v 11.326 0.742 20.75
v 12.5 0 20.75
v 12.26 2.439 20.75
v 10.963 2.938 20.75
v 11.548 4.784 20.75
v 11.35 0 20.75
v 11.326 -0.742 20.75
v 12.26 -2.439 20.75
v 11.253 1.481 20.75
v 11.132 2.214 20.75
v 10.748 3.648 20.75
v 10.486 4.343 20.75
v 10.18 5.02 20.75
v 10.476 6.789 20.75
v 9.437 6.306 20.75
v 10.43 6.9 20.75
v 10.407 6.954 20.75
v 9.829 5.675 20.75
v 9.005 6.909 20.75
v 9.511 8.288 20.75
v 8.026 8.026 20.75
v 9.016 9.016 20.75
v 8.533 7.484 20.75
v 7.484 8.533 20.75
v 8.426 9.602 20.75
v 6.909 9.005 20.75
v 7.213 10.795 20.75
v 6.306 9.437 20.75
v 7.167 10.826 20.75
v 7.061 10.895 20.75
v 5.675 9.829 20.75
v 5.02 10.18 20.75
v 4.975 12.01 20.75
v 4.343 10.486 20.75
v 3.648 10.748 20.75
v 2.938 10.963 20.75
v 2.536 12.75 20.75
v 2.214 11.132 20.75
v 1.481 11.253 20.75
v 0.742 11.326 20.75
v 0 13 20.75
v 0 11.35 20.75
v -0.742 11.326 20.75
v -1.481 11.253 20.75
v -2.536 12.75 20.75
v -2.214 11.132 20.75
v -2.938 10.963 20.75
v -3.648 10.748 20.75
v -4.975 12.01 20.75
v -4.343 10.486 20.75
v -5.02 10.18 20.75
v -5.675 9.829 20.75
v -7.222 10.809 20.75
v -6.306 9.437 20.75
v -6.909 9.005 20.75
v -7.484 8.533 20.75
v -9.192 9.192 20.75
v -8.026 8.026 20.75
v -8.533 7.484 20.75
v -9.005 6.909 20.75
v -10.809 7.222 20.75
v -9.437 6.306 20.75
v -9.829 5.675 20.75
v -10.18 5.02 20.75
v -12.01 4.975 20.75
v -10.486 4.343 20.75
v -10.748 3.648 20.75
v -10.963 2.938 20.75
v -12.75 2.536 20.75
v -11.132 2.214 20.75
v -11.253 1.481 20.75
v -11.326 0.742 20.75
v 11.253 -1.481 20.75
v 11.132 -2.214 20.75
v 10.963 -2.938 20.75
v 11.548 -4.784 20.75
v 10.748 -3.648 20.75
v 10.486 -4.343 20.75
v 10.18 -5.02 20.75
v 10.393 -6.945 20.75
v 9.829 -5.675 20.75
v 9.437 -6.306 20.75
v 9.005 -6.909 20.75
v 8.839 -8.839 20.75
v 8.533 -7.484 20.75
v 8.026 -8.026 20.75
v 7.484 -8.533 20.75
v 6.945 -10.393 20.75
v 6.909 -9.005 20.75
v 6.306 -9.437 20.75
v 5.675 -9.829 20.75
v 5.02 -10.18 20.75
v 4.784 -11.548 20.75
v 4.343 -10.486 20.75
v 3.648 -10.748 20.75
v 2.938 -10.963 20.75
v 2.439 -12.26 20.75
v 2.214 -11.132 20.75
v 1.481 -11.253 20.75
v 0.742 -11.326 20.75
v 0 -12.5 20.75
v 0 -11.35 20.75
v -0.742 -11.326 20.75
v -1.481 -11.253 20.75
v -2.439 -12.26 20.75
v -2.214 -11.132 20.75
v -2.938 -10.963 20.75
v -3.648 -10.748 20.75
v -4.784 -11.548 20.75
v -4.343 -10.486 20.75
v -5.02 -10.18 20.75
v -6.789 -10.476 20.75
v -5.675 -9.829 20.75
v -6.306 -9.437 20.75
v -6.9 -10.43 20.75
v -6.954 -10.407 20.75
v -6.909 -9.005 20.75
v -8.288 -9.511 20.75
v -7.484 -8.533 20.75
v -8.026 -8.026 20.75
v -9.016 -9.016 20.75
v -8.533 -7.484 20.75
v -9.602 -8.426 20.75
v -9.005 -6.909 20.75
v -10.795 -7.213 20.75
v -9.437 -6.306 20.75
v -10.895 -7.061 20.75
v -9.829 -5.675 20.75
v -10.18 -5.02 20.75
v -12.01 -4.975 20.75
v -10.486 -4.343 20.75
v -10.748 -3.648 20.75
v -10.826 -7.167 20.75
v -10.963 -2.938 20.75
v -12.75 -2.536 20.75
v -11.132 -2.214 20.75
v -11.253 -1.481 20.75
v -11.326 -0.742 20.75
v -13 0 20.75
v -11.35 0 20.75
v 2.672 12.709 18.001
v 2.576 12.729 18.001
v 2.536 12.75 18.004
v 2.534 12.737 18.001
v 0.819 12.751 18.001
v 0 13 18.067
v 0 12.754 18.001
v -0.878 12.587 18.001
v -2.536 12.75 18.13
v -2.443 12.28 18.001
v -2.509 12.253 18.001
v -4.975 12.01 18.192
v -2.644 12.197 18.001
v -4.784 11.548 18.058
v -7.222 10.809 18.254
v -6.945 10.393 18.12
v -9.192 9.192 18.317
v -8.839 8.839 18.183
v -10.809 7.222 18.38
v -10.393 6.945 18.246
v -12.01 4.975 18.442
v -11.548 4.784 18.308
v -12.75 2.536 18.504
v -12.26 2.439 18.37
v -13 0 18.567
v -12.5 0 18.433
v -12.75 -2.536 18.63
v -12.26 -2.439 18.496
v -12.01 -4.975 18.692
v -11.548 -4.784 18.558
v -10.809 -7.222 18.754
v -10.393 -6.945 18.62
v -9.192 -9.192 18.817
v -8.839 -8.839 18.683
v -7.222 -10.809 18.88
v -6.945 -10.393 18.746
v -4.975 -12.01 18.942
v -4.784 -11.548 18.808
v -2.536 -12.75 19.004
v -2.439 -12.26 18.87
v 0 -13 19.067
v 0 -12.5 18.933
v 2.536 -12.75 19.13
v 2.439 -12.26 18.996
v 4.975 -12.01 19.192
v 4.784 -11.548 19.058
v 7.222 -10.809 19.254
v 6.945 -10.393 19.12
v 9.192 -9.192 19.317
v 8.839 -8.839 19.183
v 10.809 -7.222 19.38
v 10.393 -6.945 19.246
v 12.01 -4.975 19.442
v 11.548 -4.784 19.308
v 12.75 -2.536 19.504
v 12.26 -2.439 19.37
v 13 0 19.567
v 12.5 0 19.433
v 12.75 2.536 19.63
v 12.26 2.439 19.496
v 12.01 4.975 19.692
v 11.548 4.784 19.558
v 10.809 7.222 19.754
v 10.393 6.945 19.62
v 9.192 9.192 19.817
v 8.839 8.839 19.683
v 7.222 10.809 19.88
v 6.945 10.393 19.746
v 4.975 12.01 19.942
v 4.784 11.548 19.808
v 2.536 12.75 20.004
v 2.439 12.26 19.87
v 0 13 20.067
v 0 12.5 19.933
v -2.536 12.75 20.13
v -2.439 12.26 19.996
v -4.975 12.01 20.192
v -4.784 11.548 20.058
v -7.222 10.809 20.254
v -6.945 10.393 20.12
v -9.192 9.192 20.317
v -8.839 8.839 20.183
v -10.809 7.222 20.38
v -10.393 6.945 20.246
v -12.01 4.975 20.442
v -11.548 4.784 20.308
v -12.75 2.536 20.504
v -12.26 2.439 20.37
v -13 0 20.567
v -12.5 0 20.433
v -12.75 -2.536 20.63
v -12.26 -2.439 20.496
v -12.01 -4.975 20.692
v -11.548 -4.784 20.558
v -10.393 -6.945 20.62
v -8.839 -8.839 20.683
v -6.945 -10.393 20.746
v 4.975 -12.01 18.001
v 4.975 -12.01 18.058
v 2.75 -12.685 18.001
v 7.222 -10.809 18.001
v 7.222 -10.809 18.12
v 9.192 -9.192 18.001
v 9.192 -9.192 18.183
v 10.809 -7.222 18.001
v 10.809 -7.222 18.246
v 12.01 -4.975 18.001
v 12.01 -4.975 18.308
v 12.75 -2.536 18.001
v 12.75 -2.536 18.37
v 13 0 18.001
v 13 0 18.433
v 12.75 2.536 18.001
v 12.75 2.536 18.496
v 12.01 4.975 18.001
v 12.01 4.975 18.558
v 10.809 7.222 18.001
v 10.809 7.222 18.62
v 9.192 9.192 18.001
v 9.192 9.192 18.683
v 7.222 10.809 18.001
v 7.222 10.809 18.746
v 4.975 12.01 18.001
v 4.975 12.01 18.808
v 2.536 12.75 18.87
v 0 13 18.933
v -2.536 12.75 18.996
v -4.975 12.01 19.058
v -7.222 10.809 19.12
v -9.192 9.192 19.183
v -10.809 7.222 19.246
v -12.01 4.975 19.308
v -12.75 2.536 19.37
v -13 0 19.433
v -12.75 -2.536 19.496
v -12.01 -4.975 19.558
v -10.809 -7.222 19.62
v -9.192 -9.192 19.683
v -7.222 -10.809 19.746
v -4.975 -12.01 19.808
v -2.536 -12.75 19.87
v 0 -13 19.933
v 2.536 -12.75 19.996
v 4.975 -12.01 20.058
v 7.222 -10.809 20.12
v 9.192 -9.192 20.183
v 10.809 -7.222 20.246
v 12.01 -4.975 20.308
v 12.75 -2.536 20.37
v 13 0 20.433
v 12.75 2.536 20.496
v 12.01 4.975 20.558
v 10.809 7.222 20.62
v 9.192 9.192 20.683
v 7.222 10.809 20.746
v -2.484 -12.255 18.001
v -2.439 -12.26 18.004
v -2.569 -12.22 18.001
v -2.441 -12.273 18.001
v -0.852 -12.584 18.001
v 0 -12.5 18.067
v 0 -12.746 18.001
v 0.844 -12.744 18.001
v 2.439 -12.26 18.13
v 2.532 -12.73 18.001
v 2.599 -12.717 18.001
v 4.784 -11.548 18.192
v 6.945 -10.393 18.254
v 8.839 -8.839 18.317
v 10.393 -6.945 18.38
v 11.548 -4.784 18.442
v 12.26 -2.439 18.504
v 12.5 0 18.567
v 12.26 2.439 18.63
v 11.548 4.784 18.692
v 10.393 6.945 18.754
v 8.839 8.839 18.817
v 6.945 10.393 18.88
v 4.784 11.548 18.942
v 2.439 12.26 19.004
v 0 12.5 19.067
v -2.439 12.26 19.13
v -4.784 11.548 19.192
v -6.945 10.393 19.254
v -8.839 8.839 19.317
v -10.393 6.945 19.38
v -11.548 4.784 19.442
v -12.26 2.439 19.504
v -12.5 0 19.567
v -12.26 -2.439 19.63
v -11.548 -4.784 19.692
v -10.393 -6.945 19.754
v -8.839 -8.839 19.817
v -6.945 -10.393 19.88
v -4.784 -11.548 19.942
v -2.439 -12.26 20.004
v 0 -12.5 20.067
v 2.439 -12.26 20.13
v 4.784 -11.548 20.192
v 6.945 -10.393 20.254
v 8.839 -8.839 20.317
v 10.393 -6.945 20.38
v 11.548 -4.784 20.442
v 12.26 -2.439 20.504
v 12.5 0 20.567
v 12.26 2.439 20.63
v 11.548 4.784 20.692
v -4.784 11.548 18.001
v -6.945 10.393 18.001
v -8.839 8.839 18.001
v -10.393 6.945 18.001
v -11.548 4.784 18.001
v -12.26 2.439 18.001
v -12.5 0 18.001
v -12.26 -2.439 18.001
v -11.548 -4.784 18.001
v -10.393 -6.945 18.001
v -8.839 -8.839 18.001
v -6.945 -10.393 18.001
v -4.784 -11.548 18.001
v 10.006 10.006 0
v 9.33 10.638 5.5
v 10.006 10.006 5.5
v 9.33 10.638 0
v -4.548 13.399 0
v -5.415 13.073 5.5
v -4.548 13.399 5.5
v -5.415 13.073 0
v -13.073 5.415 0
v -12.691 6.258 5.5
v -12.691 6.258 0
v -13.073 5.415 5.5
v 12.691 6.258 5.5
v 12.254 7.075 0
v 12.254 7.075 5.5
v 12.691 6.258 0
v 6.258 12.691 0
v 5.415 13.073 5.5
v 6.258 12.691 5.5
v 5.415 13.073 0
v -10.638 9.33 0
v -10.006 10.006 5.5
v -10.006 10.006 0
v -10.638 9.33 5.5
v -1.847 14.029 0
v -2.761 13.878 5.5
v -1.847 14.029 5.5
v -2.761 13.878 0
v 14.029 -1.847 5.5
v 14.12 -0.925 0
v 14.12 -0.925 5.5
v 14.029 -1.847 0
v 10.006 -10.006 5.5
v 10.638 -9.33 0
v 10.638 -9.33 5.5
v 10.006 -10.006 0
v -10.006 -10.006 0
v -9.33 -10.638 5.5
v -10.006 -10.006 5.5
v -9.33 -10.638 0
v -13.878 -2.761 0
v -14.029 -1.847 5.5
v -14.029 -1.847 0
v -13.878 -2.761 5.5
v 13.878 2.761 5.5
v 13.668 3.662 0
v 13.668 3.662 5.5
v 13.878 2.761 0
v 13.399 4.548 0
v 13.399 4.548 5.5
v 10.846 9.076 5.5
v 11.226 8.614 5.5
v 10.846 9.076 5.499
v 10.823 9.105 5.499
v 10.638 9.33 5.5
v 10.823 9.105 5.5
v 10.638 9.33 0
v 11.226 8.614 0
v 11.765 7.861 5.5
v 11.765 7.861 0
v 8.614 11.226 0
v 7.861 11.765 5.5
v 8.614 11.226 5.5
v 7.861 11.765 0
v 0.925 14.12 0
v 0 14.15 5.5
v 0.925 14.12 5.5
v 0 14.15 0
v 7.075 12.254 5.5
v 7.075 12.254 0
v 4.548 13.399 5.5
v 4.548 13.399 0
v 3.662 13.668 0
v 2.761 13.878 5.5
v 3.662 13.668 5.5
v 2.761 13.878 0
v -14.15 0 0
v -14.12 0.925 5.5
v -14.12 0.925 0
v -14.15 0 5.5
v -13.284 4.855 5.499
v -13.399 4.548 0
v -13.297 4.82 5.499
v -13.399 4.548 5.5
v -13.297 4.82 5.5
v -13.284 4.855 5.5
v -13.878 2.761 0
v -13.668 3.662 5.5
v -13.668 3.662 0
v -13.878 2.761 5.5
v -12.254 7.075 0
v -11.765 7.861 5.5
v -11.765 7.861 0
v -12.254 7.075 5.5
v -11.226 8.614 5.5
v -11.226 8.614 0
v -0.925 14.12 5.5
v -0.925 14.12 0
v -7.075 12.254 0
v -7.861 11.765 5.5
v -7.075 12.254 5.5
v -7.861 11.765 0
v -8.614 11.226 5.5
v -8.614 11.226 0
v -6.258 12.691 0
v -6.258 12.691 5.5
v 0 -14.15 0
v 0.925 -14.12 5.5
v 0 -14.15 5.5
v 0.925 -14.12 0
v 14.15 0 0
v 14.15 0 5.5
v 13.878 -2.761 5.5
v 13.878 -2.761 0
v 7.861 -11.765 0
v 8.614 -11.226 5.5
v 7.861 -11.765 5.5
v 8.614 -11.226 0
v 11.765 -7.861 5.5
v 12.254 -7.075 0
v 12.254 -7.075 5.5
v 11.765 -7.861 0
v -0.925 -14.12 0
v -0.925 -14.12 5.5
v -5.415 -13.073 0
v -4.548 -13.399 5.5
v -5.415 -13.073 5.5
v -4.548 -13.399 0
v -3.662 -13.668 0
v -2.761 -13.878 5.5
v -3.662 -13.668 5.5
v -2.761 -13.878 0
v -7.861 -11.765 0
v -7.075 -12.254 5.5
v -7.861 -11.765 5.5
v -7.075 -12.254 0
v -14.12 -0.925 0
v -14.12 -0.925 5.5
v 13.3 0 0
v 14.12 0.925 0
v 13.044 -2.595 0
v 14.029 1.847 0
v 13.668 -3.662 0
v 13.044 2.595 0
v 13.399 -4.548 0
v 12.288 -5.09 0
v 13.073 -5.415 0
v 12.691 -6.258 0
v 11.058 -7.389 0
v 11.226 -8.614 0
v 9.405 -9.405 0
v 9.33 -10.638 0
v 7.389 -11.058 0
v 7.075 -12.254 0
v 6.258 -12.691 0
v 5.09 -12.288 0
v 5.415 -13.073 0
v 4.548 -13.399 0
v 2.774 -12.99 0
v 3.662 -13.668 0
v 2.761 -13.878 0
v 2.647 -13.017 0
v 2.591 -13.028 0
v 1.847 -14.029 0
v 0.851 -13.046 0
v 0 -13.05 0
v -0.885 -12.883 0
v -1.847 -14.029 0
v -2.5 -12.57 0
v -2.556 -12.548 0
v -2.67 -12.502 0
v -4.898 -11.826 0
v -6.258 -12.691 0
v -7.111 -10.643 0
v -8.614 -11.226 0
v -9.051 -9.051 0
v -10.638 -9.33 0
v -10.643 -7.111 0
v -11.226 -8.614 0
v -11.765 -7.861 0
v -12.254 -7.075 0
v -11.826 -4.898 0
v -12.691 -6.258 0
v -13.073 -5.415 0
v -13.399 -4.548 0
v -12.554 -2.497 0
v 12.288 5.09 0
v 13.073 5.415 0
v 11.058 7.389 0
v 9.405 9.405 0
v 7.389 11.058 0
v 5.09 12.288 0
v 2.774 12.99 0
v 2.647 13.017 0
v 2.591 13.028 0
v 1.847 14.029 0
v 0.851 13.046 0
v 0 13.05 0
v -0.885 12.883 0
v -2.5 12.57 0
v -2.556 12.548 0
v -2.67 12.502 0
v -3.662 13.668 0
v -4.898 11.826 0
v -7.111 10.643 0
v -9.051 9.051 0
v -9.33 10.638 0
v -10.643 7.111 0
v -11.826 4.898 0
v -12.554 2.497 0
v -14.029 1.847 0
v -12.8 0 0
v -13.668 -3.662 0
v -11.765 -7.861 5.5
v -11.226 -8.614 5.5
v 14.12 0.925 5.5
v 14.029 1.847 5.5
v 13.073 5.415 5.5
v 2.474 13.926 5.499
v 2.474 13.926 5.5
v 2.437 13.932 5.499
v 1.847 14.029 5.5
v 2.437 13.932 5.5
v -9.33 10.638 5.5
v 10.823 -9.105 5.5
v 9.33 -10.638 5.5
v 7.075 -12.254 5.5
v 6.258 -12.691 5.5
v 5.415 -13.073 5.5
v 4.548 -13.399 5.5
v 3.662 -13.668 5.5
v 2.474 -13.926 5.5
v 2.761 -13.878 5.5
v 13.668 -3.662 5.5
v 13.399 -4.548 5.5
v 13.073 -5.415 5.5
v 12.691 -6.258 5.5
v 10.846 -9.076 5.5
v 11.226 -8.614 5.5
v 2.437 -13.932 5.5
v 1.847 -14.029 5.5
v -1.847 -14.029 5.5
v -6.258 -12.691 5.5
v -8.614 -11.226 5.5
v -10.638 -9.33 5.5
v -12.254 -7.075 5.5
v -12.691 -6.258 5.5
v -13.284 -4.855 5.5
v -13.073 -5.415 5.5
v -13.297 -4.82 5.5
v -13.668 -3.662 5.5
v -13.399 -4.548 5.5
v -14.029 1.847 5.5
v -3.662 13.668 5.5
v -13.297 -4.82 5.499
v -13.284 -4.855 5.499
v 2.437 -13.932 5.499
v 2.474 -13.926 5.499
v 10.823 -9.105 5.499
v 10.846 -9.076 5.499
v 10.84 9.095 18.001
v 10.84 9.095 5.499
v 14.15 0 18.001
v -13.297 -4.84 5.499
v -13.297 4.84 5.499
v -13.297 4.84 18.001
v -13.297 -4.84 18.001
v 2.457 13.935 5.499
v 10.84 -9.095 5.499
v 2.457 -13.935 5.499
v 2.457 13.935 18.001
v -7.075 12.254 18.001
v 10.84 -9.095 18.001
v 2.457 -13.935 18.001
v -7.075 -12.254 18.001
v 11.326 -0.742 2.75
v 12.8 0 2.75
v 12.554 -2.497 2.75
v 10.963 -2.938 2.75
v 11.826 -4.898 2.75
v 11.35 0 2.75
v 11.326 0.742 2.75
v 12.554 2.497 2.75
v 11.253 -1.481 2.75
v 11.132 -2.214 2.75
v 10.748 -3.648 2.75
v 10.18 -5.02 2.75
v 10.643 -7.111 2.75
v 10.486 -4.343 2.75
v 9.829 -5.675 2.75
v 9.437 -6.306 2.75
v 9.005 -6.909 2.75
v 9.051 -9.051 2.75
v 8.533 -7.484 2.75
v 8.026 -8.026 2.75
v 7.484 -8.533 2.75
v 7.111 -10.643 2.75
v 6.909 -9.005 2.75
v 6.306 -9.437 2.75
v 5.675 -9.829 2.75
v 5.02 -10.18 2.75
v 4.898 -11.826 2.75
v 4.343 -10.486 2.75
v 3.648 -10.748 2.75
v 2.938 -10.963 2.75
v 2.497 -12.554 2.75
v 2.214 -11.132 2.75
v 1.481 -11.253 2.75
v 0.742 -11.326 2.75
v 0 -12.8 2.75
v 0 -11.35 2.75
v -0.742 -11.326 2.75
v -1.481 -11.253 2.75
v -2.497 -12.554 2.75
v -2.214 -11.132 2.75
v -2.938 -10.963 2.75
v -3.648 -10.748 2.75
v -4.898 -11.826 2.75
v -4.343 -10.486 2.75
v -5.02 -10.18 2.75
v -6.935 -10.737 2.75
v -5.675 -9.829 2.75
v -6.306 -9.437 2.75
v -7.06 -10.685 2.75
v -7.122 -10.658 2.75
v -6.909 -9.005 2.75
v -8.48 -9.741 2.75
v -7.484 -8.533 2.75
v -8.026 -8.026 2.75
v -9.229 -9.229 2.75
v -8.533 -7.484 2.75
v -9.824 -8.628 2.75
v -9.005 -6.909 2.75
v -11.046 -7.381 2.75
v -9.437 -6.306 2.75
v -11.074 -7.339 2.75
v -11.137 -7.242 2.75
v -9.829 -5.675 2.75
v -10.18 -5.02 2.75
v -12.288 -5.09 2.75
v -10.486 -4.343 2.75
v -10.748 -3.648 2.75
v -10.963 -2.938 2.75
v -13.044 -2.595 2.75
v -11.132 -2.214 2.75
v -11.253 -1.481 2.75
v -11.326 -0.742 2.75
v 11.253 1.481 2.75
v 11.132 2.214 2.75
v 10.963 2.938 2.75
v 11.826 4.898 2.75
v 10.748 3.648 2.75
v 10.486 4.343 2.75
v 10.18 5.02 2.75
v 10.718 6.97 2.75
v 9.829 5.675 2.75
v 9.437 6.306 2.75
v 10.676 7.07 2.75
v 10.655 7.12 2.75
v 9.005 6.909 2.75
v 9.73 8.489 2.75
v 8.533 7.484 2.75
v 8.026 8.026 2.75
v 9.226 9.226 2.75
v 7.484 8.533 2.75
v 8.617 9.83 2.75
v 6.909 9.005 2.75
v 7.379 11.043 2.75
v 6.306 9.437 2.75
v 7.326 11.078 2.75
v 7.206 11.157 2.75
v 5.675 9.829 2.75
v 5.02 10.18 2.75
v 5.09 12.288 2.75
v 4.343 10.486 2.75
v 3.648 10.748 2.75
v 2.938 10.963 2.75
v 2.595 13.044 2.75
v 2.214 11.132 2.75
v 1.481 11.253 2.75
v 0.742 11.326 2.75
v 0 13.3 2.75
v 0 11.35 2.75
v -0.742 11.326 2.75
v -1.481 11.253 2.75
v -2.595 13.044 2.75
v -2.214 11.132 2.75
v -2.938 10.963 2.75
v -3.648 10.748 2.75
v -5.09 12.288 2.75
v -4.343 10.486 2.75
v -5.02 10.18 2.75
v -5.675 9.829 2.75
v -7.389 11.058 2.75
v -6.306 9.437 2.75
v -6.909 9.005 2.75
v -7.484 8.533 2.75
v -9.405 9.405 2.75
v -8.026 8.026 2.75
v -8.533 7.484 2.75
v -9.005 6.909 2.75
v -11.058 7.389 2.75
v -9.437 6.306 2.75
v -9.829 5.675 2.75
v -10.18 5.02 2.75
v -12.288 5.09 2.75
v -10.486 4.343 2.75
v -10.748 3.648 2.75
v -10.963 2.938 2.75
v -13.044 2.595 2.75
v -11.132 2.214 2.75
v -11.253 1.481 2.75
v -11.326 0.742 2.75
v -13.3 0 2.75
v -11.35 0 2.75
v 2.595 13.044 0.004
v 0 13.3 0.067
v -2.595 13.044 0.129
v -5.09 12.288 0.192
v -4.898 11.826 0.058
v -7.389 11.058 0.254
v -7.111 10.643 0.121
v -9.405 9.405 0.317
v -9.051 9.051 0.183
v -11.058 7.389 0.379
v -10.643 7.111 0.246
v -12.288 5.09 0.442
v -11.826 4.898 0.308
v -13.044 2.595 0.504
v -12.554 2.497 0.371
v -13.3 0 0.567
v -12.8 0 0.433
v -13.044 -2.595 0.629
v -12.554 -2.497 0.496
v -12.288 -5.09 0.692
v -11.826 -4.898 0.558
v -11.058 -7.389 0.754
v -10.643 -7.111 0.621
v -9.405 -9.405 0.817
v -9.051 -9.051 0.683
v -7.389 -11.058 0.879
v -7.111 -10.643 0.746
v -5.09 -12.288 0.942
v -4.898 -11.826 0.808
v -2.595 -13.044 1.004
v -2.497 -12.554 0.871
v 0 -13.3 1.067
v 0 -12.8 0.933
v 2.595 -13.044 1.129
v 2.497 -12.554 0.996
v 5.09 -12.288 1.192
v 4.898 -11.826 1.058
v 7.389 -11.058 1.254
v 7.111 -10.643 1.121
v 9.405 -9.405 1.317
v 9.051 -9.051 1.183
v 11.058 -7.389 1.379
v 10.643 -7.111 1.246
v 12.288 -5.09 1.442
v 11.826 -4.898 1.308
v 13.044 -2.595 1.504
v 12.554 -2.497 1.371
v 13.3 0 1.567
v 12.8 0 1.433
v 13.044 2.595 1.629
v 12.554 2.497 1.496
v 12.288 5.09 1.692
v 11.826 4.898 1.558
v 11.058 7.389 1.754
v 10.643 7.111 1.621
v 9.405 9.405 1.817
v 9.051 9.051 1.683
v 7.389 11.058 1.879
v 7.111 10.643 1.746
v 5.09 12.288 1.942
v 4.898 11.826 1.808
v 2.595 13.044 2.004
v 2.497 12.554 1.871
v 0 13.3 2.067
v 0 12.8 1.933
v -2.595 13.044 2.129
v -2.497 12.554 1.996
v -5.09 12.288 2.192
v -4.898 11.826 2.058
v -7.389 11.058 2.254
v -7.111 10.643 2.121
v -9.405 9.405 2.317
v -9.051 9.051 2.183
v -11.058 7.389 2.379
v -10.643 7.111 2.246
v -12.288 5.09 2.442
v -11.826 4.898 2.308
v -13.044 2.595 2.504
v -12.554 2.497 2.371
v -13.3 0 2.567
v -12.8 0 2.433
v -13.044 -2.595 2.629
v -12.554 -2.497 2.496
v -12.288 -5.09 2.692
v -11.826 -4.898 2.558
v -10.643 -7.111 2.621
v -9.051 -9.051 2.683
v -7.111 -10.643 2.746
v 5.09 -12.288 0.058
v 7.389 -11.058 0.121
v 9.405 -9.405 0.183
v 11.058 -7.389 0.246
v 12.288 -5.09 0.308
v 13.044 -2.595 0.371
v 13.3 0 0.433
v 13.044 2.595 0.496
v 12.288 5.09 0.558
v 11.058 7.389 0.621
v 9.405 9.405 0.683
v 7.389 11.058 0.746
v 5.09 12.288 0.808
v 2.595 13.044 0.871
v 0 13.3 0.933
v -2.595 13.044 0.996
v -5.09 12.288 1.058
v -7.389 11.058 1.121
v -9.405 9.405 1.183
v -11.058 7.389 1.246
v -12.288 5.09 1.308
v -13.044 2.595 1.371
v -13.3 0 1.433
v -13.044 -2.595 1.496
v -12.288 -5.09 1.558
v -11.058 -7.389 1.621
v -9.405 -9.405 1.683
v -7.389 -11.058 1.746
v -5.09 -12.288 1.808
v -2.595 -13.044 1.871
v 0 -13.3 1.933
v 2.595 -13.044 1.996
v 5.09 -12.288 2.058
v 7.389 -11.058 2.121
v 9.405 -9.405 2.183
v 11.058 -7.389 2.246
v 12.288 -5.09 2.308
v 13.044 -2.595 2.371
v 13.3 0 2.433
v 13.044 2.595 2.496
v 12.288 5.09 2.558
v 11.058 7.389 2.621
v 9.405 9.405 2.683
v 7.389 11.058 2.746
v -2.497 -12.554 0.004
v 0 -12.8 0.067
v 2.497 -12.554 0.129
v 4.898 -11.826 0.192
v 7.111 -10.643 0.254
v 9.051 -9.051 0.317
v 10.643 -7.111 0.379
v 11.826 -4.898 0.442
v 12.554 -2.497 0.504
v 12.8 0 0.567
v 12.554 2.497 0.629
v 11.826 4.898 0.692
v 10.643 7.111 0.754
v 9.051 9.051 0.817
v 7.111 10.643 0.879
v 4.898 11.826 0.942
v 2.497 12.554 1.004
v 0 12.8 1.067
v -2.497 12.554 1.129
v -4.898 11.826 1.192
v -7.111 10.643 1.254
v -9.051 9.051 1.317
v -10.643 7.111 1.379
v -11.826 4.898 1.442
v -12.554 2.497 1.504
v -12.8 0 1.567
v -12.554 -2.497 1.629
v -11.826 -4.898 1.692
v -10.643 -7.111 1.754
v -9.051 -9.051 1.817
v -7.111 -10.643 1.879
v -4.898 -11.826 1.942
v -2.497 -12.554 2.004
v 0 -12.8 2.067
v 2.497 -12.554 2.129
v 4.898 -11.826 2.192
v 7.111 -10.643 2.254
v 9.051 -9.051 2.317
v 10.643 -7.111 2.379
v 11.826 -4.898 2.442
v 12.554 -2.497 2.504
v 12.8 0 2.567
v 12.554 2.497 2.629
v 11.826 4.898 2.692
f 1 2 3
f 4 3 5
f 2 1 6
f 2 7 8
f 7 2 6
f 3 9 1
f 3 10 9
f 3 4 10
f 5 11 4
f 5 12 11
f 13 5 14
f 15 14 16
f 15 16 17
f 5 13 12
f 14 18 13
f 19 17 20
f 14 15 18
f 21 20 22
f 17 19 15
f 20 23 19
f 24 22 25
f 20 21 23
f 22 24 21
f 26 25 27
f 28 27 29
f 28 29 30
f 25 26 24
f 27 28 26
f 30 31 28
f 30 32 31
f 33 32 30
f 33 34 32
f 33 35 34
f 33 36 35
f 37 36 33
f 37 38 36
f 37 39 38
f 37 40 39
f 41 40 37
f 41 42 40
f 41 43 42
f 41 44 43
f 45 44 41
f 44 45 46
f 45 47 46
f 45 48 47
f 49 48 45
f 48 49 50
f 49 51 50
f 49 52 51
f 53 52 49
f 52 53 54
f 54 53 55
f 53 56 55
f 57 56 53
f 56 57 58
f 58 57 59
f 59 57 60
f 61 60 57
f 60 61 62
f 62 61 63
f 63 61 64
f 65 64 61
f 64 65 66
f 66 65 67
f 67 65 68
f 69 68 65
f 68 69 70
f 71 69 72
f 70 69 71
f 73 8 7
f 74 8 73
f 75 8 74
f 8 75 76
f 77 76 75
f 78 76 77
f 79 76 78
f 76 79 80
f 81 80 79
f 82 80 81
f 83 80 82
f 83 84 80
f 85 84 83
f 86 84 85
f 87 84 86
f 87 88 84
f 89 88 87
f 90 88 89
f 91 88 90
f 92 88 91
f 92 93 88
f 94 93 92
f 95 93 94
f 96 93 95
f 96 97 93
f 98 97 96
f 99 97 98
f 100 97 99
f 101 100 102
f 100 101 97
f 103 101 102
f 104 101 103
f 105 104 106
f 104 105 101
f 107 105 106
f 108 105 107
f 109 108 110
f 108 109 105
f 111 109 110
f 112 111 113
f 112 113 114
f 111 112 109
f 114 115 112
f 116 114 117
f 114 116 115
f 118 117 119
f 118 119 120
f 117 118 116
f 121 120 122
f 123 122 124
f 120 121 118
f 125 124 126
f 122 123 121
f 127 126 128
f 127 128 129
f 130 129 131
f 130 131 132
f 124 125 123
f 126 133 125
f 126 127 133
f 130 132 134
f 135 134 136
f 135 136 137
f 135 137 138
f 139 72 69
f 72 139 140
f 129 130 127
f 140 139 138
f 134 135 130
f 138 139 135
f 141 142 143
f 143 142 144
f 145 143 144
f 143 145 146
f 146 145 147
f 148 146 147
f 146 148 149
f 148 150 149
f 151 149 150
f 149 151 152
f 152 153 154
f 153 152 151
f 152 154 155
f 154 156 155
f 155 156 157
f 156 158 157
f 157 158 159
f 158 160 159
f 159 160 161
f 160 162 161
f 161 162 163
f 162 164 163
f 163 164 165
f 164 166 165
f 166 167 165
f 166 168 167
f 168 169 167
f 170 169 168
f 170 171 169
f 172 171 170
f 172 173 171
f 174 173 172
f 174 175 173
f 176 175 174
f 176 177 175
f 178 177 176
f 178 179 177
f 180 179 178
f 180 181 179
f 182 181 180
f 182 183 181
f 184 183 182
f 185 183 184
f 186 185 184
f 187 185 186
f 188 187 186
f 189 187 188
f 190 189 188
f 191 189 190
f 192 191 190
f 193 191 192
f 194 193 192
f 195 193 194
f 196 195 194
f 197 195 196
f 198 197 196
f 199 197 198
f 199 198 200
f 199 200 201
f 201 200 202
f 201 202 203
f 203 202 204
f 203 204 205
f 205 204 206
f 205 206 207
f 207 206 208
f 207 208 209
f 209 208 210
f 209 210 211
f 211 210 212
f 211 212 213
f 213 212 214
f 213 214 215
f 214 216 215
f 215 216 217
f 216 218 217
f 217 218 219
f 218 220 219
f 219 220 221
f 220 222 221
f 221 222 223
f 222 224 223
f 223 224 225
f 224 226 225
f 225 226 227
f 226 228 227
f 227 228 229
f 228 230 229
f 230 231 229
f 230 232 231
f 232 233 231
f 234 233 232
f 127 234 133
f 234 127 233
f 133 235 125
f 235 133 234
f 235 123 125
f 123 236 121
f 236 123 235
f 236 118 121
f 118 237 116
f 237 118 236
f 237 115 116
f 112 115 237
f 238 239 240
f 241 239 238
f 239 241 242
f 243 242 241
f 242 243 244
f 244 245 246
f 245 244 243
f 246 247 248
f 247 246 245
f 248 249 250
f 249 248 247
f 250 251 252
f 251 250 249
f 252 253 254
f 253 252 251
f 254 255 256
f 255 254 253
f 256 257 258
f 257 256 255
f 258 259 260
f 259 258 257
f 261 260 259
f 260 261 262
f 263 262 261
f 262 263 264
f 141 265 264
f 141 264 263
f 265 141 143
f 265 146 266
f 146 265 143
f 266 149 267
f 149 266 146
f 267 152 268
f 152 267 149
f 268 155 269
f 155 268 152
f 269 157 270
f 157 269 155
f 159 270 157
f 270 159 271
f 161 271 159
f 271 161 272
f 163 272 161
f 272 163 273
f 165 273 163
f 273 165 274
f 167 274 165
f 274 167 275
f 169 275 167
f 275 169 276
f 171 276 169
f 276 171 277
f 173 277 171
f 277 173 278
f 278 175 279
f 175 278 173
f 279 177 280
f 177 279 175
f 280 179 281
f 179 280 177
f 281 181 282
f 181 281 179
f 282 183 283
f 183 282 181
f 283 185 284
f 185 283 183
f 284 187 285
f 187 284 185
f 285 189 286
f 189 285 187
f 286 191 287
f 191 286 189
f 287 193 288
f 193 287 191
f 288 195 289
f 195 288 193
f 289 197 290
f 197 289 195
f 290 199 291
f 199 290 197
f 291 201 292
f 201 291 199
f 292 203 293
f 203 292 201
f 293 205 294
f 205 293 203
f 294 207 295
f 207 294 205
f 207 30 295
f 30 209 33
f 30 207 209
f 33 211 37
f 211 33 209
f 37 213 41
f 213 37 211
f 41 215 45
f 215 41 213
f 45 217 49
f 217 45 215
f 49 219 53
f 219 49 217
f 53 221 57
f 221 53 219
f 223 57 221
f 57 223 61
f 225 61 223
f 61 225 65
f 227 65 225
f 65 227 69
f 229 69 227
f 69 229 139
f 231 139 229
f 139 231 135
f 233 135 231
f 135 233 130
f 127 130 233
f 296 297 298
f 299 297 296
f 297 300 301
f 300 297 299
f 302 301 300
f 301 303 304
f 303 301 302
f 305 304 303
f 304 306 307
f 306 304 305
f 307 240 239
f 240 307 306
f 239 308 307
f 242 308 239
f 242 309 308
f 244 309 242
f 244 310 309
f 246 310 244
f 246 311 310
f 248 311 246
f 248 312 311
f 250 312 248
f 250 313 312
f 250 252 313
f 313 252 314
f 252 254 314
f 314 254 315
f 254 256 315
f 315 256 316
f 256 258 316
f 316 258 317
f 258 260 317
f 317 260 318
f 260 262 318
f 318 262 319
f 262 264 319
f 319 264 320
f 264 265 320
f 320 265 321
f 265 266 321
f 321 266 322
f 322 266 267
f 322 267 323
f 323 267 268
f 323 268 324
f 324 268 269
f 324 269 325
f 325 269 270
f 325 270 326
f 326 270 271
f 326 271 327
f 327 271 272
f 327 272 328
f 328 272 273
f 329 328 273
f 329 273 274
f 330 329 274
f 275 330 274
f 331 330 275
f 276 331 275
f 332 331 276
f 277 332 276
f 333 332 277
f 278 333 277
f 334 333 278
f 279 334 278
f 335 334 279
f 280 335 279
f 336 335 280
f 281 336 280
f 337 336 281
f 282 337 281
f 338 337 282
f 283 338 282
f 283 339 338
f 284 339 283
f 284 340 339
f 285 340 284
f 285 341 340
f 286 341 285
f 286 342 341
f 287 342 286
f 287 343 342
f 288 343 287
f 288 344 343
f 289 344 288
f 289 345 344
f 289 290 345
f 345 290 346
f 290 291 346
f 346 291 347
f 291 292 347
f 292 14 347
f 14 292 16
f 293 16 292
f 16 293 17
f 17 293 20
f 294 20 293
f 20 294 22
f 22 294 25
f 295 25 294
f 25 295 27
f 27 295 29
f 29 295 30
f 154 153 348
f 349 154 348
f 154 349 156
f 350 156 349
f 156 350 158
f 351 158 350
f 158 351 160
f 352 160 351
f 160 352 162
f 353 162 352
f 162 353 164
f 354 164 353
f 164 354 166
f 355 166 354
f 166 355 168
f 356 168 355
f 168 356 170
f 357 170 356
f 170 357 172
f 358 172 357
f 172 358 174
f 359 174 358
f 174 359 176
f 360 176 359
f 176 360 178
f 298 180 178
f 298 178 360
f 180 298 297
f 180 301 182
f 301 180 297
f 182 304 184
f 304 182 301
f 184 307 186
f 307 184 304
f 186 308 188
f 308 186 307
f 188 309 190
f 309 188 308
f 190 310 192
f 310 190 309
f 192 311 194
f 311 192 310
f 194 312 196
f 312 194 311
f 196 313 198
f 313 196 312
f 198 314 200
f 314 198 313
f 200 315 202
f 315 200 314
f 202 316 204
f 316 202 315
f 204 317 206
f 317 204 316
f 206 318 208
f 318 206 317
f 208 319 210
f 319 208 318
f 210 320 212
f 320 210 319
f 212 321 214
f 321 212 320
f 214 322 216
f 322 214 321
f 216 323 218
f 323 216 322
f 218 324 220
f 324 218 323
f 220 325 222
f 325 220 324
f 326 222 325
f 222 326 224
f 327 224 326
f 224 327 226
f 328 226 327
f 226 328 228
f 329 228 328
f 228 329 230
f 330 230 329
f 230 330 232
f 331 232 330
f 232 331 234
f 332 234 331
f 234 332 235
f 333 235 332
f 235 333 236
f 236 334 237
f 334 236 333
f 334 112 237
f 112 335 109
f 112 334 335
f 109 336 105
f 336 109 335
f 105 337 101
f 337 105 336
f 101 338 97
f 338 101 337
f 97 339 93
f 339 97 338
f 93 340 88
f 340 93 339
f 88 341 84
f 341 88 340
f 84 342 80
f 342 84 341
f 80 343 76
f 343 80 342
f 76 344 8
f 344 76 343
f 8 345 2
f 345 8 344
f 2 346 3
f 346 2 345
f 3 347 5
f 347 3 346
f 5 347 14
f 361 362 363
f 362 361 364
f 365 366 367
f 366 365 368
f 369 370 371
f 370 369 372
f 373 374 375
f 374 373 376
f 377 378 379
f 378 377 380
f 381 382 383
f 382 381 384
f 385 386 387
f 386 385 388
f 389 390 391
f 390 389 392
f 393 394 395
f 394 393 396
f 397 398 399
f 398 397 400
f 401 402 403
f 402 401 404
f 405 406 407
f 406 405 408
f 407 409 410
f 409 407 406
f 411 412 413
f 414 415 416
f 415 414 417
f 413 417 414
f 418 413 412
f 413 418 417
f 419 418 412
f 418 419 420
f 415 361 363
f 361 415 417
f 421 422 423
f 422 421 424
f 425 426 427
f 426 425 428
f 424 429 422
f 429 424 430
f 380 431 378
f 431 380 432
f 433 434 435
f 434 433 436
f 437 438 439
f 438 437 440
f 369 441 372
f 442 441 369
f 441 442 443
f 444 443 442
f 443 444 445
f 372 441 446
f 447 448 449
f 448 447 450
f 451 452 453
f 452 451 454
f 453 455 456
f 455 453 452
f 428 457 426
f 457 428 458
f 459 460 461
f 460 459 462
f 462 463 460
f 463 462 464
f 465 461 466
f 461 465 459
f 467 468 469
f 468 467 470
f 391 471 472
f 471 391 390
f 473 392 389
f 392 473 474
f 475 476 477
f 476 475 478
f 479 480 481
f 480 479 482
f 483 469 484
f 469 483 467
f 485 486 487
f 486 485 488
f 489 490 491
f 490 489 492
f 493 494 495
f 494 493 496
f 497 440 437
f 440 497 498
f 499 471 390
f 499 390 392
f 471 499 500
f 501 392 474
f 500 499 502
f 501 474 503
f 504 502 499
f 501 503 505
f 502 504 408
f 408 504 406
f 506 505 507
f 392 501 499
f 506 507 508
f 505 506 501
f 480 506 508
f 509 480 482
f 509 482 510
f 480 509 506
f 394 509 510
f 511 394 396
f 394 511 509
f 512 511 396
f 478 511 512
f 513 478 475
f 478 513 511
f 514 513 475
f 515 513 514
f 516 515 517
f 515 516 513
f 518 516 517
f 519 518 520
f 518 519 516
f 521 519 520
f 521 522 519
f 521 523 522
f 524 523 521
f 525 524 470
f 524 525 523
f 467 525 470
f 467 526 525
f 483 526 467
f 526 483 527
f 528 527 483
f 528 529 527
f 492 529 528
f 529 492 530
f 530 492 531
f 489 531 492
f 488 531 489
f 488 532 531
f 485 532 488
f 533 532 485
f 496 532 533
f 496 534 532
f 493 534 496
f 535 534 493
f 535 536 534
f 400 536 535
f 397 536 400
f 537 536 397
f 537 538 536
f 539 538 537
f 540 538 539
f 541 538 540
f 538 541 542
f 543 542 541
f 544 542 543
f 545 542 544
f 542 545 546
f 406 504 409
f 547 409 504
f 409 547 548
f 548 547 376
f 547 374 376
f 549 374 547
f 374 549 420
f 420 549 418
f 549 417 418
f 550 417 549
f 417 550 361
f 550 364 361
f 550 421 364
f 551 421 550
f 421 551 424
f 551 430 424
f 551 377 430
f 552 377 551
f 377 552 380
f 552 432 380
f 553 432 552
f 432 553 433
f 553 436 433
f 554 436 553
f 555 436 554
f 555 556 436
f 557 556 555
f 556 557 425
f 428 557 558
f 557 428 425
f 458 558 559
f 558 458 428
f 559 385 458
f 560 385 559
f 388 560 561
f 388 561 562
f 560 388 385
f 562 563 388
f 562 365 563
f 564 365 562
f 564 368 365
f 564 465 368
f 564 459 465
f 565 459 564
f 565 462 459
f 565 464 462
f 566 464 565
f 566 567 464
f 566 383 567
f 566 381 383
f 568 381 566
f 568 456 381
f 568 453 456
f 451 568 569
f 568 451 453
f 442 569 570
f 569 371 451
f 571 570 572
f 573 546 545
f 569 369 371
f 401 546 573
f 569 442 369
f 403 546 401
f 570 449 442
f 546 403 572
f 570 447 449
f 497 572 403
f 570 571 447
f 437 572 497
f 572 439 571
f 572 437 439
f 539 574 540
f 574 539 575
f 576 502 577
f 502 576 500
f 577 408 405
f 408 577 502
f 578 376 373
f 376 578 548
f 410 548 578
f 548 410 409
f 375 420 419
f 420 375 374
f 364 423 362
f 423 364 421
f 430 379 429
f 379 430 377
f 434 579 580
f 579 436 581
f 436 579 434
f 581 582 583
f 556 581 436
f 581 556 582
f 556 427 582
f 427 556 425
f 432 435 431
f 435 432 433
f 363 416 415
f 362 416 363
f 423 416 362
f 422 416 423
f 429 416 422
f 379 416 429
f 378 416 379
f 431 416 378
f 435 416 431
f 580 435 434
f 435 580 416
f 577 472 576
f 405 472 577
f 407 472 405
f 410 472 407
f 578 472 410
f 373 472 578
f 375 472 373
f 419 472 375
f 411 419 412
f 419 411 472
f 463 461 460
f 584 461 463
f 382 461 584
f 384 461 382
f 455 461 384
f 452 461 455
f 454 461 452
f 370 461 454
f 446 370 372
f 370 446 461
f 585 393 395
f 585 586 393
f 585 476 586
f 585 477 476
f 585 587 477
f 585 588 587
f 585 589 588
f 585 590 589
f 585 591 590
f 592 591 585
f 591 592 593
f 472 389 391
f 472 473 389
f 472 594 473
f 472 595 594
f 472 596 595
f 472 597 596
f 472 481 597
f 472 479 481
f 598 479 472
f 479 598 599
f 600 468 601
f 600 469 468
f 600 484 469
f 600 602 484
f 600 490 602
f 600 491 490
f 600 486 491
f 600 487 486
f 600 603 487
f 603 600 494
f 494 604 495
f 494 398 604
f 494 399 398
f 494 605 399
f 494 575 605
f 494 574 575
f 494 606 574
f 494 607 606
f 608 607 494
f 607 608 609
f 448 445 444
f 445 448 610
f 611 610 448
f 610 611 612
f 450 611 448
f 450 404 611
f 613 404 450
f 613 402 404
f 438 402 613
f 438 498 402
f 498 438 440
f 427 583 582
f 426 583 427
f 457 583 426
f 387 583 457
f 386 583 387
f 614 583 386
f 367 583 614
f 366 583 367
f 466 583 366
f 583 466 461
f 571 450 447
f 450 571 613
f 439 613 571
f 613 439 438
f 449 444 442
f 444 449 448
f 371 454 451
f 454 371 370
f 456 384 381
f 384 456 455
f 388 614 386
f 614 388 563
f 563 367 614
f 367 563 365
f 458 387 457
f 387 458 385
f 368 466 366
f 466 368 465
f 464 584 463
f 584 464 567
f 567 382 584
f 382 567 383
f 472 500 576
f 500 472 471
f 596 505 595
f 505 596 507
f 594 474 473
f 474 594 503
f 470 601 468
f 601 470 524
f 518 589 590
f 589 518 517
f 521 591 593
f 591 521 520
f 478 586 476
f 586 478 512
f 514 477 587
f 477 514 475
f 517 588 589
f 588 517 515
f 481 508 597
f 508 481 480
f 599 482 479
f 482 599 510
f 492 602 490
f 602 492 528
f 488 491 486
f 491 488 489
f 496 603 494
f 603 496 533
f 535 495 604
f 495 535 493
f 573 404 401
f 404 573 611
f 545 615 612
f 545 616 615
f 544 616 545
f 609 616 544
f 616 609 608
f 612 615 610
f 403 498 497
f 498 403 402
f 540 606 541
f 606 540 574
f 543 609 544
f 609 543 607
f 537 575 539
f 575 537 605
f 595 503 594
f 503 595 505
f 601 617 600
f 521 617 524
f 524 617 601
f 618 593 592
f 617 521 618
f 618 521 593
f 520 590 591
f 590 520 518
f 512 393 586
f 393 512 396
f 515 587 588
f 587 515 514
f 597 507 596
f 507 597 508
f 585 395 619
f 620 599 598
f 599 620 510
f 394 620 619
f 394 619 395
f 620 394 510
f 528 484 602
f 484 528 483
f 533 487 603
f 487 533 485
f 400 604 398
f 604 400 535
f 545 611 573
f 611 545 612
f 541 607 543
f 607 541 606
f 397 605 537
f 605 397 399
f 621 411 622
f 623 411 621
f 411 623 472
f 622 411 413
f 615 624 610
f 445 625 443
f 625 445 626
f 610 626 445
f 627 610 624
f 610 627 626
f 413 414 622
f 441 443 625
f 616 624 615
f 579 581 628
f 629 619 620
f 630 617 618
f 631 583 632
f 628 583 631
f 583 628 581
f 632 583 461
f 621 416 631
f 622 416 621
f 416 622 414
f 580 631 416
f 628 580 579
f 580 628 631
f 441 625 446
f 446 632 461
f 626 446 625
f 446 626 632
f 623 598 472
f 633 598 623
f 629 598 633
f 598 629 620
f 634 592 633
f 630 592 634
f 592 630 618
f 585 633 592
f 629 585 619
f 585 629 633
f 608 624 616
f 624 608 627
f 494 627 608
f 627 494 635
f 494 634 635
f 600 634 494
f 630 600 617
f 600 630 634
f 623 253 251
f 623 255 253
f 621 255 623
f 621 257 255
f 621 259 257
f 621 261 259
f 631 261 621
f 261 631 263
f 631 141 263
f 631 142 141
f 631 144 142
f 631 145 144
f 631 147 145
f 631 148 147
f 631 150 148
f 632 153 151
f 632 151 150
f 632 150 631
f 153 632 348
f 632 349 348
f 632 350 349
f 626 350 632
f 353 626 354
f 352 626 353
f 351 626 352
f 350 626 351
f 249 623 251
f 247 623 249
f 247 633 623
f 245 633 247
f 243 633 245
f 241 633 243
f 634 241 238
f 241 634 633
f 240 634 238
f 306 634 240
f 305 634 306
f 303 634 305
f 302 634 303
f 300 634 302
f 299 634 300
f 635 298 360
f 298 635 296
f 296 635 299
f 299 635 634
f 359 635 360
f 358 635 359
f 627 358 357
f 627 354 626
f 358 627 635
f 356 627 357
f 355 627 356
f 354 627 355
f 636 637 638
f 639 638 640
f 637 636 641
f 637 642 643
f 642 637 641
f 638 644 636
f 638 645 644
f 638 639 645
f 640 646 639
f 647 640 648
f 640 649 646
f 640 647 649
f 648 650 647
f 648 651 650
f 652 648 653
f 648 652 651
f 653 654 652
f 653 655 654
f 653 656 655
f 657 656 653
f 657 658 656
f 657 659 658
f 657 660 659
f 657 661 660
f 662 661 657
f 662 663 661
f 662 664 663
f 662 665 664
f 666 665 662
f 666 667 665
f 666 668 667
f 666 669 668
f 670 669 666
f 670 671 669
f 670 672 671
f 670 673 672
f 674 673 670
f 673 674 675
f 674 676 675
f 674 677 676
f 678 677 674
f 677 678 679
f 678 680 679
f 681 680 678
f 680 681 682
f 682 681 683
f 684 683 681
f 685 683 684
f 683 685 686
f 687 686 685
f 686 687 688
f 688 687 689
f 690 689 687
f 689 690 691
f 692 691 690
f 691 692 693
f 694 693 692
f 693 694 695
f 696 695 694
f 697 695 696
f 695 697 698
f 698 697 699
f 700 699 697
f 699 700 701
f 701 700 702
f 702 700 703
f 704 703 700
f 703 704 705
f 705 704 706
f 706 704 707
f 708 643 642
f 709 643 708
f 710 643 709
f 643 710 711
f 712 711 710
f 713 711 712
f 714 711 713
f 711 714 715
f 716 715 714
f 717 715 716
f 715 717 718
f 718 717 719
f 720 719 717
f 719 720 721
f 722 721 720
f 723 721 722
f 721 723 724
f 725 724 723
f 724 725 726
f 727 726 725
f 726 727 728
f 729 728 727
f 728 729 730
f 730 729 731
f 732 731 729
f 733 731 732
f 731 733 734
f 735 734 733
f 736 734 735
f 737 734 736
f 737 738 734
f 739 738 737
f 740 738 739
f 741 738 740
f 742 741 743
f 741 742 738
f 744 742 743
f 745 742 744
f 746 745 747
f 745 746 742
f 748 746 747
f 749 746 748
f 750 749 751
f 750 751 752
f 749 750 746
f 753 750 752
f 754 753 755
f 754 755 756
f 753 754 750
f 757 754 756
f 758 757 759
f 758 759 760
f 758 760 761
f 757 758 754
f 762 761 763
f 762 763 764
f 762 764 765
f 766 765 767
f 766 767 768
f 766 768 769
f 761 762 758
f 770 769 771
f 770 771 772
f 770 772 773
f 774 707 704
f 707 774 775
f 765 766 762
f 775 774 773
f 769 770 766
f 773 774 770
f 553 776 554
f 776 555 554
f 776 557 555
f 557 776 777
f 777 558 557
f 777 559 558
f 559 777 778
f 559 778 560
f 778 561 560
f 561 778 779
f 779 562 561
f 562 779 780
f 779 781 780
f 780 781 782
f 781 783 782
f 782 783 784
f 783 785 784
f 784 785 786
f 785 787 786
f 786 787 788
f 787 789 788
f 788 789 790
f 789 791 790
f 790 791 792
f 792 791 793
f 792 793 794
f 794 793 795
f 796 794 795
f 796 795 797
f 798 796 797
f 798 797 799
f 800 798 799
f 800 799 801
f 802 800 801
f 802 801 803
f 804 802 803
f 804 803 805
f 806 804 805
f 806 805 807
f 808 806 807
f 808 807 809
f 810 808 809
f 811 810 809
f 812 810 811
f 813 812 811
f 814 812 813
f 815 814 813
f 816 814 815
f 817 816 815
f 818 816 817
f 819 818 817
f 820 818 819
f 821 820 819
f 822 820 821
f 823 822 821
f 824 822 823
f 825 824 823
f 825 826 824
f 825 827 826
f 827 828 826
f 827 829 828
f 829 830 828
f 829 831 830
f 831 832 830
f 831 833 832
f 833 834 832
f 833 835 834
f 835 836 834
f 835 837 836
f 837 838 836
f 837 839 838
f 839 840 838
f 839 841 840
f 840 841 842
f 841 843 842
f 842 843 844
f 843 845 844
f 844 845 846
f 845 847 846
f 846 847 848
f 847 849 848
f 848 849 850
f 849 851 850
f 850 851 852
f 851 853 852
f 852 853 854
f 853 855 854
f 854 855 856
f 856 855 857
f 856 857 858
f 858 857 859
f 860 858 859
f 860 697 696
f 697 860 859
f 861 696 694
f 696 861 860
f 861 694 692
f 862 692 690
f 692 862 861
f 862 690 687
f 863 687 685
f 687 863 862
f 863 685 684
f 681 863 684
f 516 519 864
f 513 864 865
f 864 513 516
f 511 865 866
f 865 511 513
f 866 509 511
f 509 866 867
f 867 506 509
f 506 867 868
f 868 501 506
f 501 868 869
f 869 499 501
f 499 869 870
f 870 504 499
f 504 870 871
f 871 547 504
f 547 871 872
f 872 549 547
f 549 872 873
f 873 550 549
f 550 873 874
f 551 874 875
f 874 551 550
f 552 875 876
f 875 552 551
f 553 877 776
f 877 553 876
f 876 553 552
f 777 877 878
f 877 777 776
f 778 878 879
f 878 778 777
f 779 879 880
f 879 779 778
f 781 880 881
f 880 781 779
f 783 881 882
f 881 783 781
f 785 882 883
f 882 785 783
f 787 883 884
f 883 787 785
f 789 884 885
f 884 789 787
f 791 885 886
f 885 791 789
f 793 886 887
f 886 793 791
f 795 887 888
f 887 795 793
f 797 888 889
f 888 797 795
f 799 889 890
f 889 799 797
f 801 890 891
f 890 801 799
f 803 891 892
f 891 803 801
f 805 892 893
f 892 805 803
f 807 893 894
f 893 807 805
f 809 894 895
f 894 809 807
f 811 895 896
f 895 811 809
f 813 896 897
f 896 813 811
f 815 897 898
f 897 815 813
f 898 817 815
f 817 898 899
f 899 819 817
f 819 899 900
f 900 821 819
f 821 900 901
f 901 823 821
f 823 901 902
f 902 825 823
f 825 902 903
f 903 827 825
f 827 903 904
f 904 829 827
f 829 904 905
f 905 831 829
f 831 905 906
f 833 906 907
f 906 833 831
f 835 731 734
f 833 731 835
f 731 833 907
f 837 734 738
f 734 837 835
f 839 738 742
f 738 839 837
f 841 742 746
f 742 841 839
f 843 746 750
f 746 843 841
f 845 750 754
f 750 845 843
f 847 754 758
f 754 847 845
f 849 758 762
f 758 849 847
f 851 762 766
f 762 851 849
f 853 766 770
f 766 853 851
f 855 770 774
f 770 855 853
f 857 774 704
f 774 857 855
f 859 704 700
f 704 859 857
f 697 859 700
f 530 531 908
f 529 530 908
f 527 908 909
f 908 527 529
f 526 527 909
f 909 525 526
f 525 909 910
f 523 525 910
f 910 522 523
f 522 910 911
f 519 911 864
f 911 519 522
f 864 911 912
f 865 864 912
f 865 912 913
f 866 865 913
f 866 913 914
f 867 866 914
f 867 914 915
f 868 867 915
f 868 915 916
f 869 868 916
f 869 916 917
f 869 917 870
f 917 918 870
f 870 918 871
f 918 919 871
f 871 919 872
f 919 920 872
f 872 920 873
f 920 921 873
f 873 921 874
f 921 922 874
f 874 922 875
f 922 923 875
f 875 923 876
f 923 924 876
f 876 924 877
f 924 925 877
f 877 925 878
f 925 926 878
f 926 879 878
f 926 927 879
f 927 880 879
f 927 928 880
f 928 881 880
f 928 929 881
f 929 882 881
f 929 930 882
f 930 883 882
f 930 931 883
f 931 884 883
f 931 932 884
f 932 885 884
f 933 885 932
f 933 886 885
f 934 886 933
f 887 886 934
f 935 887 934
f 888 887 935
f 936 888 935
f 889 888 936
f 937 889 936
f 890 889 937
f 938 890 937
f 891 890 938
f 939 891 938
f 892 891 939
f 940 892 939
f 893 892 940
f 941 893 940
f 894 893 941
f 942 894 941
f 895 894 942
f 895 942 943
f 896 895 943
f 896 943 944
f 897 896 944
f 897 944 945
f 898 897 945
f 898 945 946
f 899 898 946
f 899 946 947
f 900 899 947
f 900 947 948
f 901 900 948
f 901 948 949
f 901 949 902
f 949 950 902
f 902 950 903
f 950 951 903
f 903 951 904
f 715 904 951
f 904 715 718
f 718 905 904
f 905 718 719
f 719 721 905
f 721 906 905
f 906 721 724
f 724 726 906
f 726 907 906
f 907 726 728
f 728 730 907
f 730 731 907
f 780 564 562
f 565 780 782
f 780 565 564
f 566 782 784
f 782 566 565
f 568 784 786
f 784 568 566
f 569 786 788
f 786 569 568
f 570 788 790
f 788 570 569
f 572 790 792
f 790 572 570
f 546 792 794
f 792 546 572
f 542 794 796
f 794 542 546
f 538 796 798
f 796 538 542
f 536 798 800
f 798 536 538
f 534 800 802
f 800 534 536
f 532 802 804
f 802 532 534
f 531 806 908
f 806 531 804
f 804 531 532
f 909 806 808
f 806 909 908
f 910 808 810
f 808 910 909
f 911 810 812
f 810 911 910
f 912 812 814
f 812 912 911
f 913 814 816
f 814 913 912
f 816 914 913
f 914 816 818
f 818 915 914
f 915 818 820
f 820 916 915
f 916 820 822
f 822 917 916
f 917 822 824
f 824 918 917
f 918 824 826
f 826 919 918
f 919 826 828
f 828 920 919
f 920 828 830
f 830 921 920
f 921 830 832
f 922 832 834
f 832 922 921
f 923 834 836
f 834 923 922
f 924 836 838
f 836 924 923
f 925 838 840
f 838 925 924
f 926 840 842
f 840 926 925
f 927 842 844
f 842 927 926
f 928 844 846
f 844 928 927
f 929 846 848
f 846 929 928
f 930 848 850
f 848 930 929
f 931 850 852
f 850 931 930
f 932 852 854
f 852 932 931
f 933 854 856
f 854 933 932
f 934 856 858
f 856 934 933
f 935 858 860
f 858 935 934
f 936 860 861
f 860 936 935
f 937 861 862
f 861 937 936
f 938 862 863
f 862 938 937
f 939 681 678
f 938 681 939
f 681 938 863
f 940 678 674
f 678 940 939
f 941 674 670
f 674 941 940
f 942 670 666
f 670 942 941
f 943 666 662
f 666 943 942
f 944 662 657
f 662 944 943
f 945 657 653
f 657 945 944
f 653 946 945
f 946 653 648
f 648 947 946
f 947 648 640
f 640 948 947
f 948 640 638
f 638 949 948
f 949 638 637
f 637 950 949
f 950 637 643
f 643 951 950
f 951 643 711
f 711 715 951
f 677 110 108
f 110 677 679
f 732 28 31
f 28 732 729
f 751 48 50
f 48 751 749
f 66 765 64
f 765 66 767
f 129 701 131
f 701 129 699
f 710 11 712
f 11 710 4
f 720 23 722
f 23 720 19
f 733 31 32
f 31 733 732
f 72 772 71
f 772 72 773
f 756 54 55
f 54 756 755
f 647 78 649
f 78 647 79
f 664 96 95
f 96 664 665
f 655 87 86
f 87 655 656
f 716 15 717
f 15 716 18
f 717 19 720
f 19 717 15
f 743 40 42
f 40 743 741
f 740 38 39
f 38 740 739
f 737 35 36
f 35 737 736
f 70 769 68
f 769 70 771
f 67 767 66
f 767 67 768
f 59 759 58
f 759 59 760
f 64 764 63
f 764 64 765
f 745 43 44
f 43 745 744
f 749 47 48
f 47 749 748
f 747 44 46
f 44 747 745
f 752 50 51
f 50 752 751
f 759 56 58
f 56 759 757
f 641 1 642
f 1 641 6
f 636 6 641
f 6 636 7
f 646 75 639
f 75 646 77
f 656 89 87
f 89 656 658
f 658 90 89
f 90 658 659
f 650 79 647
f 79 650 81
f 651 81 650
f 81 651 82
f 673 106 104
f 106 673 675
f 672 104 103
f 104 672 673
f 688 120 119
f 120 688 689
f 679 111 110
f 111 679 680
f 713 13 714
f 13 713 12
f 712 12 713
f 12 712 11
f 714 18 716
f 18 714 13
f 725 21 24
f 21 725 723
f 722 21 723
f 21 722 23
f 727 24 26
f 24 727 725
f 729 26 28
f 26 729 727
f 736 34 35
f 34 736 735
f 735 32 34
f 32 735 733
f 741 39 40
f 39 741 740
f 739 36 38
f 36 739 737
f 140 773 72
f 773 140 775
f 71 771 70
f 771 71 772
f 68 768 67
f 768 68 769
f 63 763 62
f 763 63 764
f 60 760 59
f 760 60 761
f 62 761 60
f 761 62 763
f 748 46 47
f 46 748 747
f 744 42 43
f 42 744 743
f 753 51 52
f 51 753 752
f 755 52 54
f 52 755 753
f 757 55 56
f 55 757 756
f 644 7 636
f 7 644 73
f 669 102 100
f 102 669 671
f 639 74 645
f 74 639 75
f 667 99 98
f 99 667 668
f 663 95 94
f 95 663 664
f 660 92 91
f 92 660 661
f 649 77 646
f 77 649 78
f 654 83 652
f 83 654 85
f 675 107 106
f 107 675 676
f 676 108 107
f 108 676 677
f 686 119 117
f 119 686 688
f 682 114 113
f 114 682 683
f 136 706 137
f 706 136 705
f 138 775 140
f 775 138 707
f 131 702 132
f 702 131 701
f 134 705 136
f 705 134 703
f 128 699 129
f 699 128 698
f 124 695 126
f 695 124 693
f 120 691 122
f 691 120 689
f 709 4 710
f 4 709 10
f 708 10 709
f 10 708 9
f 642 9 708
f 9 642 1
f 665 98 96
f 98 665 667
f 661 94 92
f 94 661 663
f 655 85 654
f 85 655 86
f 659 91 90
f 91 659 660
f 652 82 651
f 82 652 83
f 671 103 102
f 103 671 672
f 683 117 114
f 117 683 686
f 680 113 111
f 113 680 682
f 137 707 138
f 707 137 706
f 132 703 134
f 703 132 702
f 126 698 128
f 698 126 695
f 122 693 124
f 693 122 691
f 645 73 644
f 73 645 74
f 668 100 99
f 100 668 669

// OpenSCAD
/* Customizable threaded pipe coupler
** I built this to make an extension on a dollar-store 
** flashlight. It used 3xAA batteries, and I wanted to use
** an 18650 instead. While adapters are readily available to
** fit around the 18650 cell to make it a larger diameter
** to fit where the 3 AA cells were, the particular
** flashlight body I had was too short to contain a 65mm cell.
** Its cell holder was only 52.5mm long leaving me in need
** of an additional 65-52.5 = 12.5mm
** My flashlight body is 22.7 mm ID and
** male thread OD is 25 mm with 2 mm pitch, 1 start, about 0.5mm thread height.
** Appear to be metric trapezoidal threads, with shallow threads.
** I need 5.5mm of female threads
** and 5.5mm of male threads + my 12.5 mm of length.
** so overall 5.5+5.5+12.5=23.5mm.
** Wall thickness varies between 1.0 to 1.4mm on the
** existing cap (9 corrugations for grip).
** I'm just going to use a 9-gon shape to make it match the tail cap somewhat and grip easily.
** For version 1 of this, I'm going to make it solve my problem
** but design it for folks on Thingiverse to adapt it easily to
** other purposes. 
** V1.0
** Uses the excellent BOSL library for creating the threads
** (Which means it won't work in Customizer, but just get the development version of OpenSCAD)
*/

/*[sizing]*/
Length   = 23.5; //overall length of coupler
OD       = 28.3; //Outside diameter of non-threaded section
ID       = 22.7; //Inside diameter of coupler
num_sides= 9;    //Number of sides

/*[Threads]*/
Thread_Dia      = 26.0;
Thread_Depth    = 0.5;
Thread_Len      = 5.5;
Thread_Pitch    = 2.0;

/*[Hidden]*/
eps=0.001; //used carefully below to ensure solid meshes when overlapping solids

include <BOSL/constants.scad>
use <BOSL/threading.scad>   //an easy to use threading library

flashlight_coupler(Length=Length, r1=OD/2, r2=ID/2, Thread_Len=Thread_Len, Thread_Pitch=Thread_Pitch,
                    Thread_Dia=Thread_Dia, Thread_Depth=Thread_Depth, num_sides=num_sides);

module flashlight_coupler(  Length=23.5,    //overall length
                            r1=14.15,       //outside radius
                            r2=11.35,       //inside radius
                            Thread_Len=5.5, //length of threaded ends
                            Thread_Pitch=2, //pitch of threads
                            Thread_Dia=25,
                            Thread_Depth=0.5,
                            num_sides=9,    //outer cylinder n-ogon "n"
                            smooth=96       //number of sides for a "smooth" cylinder
                            )
    {  difference(){
           union()                              //build from bottom up
           {                                    cylinder(r=r1, h=Thread_Len,$fn=smooth);
            translate([0,0,Thread_Len-eps])     cylinder(r=r1, h=2*eps+Length-2*Thread_Len,$fn=num_sides);
            translate([0,0,Length-Thread_Len])  
            trapezoidal_threaded_rod(d=Thread_Dia, l=Thread_Len, pitch=Thread_Pitch,
                                     thread_depth=Thread_Depth, thread_angle=15, $fn=32);
           }
            translate([0,0,-eps])
            cylinder(r=r2, h=Length+2*eps, $fn=smooth); //bore the inside out smooth
            trapezoidal_threaded_rod(d=Thread_Dia, l=Thread_Len+eps, pitch=Thread_Pitch,
                                     thread_depth=Thread_Depth, thread_angle=15, internal=true, $fn=32);
       }
    }
    
